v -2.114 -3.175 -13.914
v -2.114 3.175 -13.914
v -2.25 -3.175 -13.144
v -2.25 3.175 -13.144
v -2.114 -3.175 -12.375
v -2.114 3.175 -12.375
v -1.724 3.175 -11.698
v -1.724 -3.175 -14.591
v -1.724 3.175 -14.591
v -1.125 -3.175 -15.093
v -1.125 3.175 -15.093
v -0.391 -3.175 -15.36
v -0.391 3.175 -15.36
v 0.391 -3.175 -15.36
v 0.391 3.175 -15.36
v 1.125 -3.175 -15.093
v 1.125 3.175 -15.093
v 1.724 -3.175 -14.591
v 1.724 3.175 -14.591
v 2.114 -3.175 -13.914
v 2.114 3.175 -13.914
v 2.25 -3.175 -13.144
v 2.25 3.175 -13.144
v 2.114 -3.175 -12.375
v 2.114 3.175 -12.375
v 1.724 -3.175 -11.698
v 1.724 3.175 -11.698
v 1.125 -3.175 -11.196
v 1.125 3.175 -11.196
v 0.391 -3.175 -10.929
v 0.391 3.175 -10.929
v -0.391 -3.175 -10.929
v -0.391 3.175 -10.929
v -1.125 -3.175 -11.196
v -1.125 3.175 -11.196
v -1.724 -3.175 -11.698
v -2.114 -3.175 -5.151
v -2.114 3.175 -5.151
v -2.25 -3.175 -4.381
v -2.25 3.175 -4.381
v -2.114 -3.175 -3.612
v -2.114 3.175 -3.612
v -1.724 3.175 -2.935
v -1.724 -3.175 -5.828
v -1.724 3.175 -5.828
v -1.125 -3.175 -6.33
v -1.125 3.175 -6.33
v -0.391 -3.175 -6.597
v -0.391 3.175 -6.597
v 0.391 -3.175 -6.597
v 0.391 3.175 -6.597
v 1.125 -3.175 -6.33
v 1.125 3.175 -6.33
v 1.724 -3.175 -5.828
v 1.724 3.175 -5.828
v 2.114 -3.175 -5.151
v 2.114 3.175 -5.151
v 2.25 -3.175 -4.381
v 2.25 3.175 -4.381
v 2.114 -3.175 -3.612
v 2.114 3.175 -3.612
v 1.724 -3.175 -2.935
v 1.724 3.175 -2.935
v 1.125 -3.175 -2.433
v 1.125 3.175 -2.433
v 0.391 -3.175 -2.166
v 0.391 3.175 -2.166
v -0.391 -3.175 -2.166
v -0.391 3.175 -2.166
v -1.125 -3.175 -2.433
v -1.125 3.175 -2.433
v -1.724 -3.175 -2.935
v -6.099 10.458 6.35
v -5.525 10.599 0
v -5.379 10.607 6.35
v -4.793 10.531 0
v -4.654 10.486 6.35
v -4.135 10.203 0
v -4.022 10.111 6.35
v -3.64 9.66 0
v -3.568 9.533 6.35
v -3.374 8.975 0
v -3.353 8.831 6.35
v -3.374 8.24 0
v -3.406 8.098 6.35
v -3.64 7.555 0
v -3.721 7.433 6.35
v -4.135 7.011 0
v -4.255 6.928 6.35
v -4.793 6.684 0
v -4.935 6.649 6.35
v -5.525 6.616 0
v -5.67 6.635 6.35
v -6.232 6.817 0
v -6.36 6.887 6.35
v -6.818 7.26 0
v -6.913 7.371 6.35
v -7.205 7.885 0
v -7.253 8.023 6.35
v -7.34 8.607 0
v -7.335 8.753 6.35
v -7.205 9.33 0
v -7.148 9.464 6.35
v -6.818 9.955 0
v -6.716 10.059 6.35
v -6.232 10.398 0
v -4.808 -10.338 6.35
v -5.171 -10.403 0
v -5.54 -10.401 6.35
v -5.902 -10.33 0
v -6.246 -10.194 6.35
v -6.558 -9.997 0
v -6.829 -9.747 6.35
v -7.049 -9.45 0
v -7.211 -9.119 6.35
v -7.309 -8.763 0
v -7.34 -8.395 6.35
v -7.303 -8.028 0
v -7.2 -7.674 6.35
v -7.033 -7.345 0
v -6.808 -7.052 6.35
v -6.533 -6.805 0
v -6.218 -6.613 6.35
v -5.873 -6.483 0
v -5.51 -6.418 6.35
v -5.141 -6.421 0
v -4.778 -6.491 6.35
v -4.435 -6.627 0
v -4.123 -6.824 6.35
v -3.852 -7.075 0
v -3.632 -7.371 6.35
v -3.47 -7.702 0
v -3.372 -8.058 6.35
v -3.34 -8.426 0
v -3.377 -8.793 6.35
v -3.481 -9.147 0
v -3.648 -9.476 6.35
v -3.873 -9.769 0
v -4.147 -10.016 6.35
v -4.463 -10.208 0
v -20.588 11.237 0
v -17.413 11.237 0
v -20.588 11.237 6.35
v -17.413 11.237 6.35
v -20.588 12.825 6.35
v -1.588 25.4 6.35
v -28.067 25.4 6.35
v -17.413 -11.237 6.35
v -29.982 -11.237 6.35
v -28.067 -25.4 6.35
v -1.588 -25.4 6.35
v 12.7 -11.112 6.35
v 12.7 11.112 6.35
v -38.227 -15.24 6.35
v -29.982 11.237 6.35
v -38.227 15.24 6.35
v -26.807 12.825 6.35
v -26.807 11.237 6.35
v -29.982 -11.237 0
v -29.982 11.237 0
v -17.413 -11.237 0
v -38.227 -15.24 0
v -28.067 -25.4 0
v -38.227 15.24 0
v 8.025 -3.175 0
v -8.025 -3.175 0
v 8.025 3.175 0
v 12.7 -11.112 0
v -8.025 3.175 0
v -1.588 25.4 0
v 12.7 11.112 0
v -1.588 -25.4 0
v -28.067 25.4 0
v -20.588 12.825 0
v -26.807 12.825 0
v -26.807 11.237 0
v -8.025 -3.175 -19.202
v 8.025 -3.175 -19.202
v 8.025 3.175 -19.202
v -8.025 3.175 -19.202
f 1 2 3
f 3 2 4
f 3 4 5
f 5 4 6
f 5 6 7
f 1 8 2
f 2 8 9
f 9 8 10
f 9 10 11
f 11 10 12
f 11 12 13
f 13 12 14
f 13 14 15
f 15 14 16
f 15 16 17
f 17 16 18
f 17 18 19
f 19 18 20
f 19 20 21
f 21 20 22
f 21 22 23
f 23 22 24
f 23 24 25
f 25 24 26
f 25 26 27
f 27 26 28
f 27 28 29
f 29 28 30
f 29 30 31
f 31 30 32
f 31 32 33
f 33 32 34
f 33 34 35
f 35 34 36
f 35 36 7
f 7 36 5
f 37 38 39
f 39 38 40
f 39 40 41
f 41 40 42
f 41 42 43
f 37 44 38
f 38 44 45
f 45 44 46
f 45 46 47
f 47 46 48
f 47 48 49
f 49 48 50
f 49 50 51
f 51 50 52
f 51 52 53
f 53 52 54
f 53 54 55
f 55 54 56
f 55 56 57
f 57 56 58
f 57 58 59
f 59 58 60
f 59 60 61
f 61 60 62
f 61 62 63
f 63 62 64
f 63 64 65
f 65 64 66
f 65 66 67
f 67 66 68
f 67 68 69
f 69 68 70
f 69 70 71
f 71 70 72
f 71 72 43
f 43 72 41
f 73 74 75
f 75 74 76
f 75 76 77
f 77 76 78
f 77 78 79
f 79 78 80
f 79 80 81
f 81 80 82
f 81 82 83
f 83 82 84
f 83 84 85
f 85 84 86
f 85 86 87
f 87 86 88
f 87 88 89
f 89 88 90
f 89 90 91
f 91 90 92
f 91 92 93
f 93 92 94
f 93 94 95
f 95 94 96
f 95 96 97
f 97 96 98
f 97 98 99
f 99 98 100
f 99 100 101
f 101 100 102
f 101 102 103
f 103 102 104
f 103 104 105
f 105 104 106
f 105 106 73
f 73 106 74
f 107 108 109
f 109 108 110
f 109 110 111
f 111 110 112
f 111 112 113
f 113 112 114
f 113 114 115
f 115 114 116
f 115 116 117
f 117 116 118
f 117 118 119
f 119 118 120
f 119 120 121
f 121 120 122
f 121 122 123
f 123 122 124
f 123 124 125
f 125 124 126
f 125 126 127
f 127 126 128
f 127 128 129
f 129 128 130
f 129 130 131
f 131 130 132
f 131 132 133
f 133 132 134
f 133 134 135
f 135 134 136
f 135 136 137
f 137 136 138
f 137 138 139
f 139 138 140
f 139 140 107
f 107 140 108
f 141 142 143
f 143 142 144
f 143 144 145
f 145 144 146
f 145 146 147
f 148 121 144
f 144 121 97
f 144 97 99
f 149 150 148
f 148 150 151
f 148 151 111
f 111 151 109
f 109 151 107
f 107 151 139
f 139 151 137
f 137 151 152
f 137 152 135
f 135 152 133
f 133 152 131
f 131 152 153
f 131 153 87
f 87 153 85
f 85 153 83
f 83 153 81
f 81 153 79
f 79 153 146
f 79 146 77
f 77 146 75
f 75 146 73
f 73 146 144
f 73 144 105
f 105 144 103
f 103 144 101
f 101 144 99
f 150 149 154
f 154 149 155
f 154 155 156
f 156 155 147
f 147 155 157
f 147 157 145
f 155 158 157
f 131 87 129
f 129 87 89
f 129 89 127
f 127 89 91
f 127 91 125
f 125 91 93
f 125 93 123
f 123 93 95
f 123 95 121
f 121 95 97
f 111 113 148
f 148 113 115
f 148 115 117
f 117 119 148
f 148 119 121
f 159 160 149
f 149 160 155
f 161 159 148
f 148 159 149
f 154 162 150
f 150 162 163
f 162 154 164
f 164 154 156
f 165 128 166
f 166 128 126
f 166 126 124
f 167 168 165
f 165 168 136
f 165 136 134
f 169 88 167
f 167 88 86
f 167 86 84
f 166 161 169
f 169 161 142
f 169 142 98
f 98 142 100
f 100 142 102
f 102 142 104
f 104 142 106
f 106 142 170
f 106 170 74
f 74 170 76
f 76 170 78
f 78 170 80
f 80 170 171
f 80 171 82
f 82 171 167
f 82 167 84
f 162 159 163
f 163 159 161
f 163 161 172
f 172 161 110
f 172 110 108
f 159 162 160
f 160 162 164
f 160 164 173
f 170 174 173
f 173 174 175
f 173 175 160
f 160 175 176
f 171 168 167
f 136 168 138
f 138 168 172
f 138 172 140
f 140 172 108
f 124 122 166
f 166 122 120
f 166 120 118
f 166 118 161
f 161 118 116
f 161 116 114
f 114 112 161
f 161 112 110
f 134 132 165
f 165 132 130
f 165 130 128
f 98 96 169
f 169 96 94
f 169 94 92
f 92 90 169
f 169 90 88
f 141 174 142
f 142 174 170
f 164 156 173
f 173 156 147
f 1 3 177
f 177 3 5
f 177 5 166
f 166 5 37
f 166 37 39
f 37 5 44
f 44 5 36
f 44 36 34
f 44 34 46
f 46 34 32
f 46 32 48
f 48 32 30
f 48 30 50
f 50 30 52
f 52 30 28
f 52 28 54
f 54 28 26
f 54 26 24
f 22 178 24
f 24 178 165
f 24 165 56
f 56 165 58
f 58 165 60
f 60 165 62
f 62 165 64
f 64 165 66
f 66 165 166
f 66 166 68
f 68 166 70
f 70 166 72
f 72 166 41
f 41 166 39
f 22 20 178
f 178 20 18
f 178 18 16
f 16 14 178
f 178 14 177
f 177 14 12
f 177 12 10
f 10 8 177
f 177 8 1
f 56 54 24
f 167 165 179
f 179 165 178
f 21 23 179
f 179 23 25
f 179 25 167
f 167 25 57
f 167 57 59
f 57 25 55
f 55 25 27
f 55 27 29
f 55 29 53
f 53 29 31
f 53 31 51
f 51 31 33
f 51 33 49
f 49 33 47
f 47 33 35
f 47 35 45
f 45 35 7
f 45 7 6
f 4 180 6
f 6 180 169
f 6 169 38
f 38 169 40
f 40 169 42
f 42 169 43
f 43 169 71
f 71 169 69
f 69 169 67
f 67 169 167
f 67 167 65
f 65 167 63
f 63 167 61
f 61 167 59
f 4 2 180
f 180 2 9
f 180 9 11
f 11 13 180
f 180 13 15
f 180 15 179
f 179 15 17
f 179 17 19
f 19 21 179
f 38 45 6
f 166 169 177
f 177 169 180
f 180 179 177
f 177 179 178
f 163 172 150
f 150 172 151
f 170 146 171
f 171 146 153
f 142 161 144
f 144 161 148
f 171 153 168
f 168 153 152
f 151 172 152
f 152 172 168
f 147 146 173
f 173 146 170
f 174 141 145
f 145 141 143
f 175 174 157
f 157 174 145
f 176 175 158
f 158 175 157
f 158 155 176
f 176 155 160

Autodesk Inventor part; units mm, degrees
ref_plane "YZ Plane" through (0, 0, 0) normal (1, 0, 0) x (0, 1, 0)
ref_plane "XZ Plane" through (0, 0, 0) normal (0, 1, 0) x (-1, 0, 0)
ref_plane "XY Plane" through (0, 0, 0) normal (0, 0, 1) x (1, 0, 0)
sketch "Sketch1" plane through (0, 0, 0) normal (0, 0, 1) x (1, 0, 0)
  line L0 (-38.1, -25.4) -> (38.1, -25.4)
  line L1 (38.1, -25.4) -> (38.1, 25.4)
  line L2 (38.1, 25.4) -> (-38.1, 25.4)
  line L3 (-38.1, 25.4) -> (-38.1, -25.4)
  line L4 (-38.1, -25.4) -> (38.1, 25.4) construction
  line L5 (38.1, -25.4) -> (-38.1, 25.4) construction
  point P0 (0, 0)
  dimension "d0" = 76.2
  dimension "d1" = 50.8
extrude "Extrusion1" add sketch "Sketch1" along normal blind 6.35
sketch "Sketch3" plane through (38.1, -25.4, 0) normal (1, 0, 0) x (0, 0, -1)
  line L0 (0, 0) -> (0, 50.8) projected
  line L1 (0, 50.8) -> (-6.35, 50.8) projected
  line L2 (-6.35, 0) -> (-6.35, 50.8) projected
  line L3 (0, 0) -> (-6.35, 0) projected
  point P0 (0, 25.4)
extrude "Extrusion3" cut sketch "Sketch3" against normal blind 25.4
sketch "Sketch4" plane through (-38.1, -25.4, 0) normal (-1, 0, 0) x (0, 0, 1)
  line L0 (4.925, 17.15) -> (1.425, 17.15)
  line L1 (1.425, 17.15) -> (1.425, 33.65)
  line L2 (1.425, 33.65) -> (4.925, 33.65)
  line L3 (4.925, 33.65) -> (4.925, 17.15)
  line L4 (4.925, 17.15) -> (1.425, 33.65) construction
  line L5 (1.425, 17.15) -> (4.925, 33.65) construction
  point P0 (0, 25.4)
  point P1 (3.175, 25.4)
  dimension "d9" = 3.5
  dimension "d10" = 16.5
extrude "Extrusion4" add sketch "Sketch4" along normal blind 3.302
sketch "Sketch5" plane through (-38.1, -8.25, 4.925) normal (0, 0, 1) x (1, 0, 0)
  line L0 (-3.302, 0) -> (-3.302, 16.5) projected
  line L1 (0, 16.5) -> (0, 0) projected
  line L2 (0, 16.5) -> (-3.302, 16.5) projected
  line L3 (-3.302, 0) -> (-3.302, 16.5) projected
  line L4 (0, 0) -> (-3.302, 0) projected
  line L5 (-3.302, 16.5) -> (-3.175, 16.5)
  line L6 (0, 16.5) -> (-3.302, 16.5) projected
  line L7 (-3.175, 16.5) -> (-3.175, 16.5685)
  line L8 (-3.302, 16.5) -> (-3.302, 0) projected
  line L9 (-3.175, 16.5685) -> (-3.302, 16.5)
  point P0 (38.1, 8.25)
  point P1 (-3.175, 16.5)
  dimension "d13" = 0.127
sketch3d "3D Sketch1"
  line L0 (-41.402, 8.25, 4.925) -> (-41.402, 8.25, 1.425)
  line L1 (-41.402, 8.25, 1.425) -> (-41.402, -8.25, 1.425)
  line L2 (-41.402, -8.25, 1.425) -> (-41.402, -8.25, 4.925)
  line L3 (-41.402, -8.25, 4.925) -> (-41.402, 8.25, 4.925)
sweep "Sweep1" add profiles "Sketch5" path "3D Sketch1" contours L9 L7 L2
chamfer "Chamfer1" distance 14.2875 angle 45 4 edges at (-38.1, -25.4, 3.175) (-38.1, 25.4, 3.175) (12.7, -25.4, 3.175) (12.7, 25.4, 3.175)
sketch "Sketch6" plane through (-41.402, -25.4, 0) normal (-1, 0, 0) x (0, 0, 1)
  line L0 (-26.5368, -66.9991) -> (26.5368, -66.9991)
  line L1 (26.5368, -66.9991) -> (26.5368, 66.9991)
  line L2 (26.5368, 66.9991) -> (-26.5368, 66.9991)
  line L3 (-26.5368, 66.9991) -> (-26.5368, -66.9991)
  line L4 (0, 0) -> (6.35, 0) projected
  line L5 (-26.5368, -66.9991) -> (26.5368, 66.9991) construction
  line L6 (26.5368, -66.9991) -> (-26.5368, 66.9991) construction
  point P0 (0, 25.4)
extrude "Extrusion5" cut sketch "Sketch6" against normal blind 28.575
sketch "Sketch7" plane through (0, 0, 0) normal (0, 0, -1) x (-1, 0, 0)
  line L0 (-8.025, 3.175) -> (-8.025, -3.175)
  line L1 (-8.025, -3.175) -> (8.025, -3.175)
  line L2 (8.025, -3.175) -> (8.025, 3.175)
  line L3 (8.025, 3.175) -> (-8.025, 3.175)
  line L4 (-8.025, 4.675) -> (8.025, -1.675) construction
  line L5 (-8.025, -1.675) -> (8.025, 4.675) construction
  line L6 (0, 3.175) -> (0, -3.175)
  point P0 (0, 0)
  point P1 (0, 0)
  dimension "d21" = 6.35
  dimension "d22" = 16.05
extrude "Extrusion6" add sketch "Sketch7" along normal blind 19.2024
sketch "Sketch9" plane through (0, 0, 6.35) normal (0, 0, 1) x (1, 0, 0)
  line L0 (6.0307, -10.9832) -> (5.9693, 11.0167) projected
  line L1 (-6.0307, 10.9832) -> (6.0307, 10.9832)
  line L2 (6.0307, 10.9832) -> (6.0307, -10.9832)
  line L3 (6.0307, -10.9832) -> (-6.0307, -10.9832)
  line L4 (-6.0307, -10.9832) -> (-6.0307, 10.9832)
  point P0 (0, 0)
sketch "Sketch10" plane through (-12.827, -25.4, 0) normal (-1, 0, 0) x (0, 0, 1)
  line L0 (0, 0) -> (0, 50.8) projected
  line L1 (6.35, 0) -> (0, 0) projected
  line L2 (6.35, 50.8) -> (6.35, 0) projected
  line L3 (0, 50.8) -> (6.35, 50.8) projected
  point P0 (0, 25.4)
extrude "Extrusion7" add sketch "Sketch10" along normal blind 25.4
chamfer "Chamfer2" distance 10.16 angle 45 1 edges at (-38.227, 25.4, 3.175)
chamfer "Chamfer3" distance 10.16 angle 45 1 edges at (-38.227, -25.4, 3.175)
sketch "Sketch11" plane through (0, 0, 6.35) normal (0, 0, 1) x (1, 0, 0)
  line L0 (-29.728, 10.9832) -> (-17.6666, 10.9832)
  line L1 (-17.6666, -10.9832) -> (-29.728, -10.9832)
  line L2 (-29.728, -10.9832) -> (-29.728, 10.9832)
  line L3 (-17.6666, -10.9832) -> (-17.6666, 10.9832)
  line L4 (-30.998, 12.2532) -> (-16.3966, 12.2532)
  line L5 (-16.3966, 12.2532) -> (-16.3966, -12.2532)
  line L6 (-16.3966, -12.2532) -> (-30.998, -12.2532)
  line L7 (-30.998, -12.2532) -> (-30.998, 12.2532)
  line L8 (-17.6666, 10.9832) -> (-18.9366, 10.9832)
  line L9 (-29.728, 10.9832) -> (-28.458, 10.9832)
  line L10 (-18.9366, 10.9832) -> (-28.458, 10.9832)
  line L11 (-28.458, 10.9832) -> (-28.458, 15.1856)
  line L12 (-28.458, 15.1856) -> (-18.9366, 15.1856)
  line L13 (-18.9366, 15.1856) -> (-18.9366, 10.9832)
  point P0 (0, 0)
  dimension "d54" = 1.27
  dimension "d55" = 1.27
  dimension "d56" = 1.27
extrude "Extrusion8" cut sketch "Sketch11" against normal up to surface (6.35 mm away) contours L0 L3 L1 L2
sketch "Sketch12" plane through (0, 0, 6.35) normal (0, 0, 1) x (1, 0, 0)
  arc A0 (-5.2182, -6.4143) -> (-5.5402, -10.4006) centre (-5.418, -8.4043) ccw projected
  arc A1 (-5.5402, -10.4006) -> (-5.2182, -6.4143) centre (-5.3404, -8.4106) ccw projected
  arc A2 (-5.3792, 10.6071) -> (-5.3792, 6.6078) centre (-5.418, 8.6074) ccw projected
  arc A3 (-5.3792, 6.6078) -> (-5.3792, 10.6071) centre (-5.3404, 8.6074) ccw projected
  line L0 (-14.078, 16.1258) -> (3.242, 16.1258) projected
  line L1 (-14.078, 16.1258) -> (-14.078, -15.929) projected
  line L2 (-14.078, -15.929) -> (3.242, -15.929) projected
  line L3 (3.242, 16.1258) -> (3.242, -15.929) projected
  circle A4 centre (-5.3404, -8.4106) radius 2
  circle A5 centre (-5.3404, 8.6074) radius 2
  point P0 (0, 0)
  point P1 (-5.3792, 6.6078)
  point P2 (-5.2182, -6.4143)
  point P3 (-5.5402, -10.4006)
  dimension "d38" = 4
  dimension "d39" = 4
extrude "Extrusion9" cut sketch "Sketch12" against normal up to surface (6.35 mm away) contours A1 A4 | A3 A5
sketch "Sketch13" plane through (-8.025, 3.175, 0) normal (0, 1, 0) x (1, 0, 0)
  line L0 (16.05, 19.2024) -> (0, 19.2024) projected
  circle A0 centre (8.025, 4.3815) radius 2.25
  circle A1 centre (8.025, 13.1445) radius 2.25
  line L1 (16.05, 0) -> (0, 0) projected
  line L2 (16.05, 0) -> (16.05, 19.2024) projected
  line L3 (0, 19.2024) -> (16.05, 19.2024) projected
  line L4 (0, 0) -> (0, 19.2024) projected
  line L5 (8.025, 0) -> (12.4065, 0)
  line L6 (6.4375, 0) -> (20.725, 0) projected
  line L7 (8.025, 0) -> (8.025, 4.3815)
  line L8 (8.025, 0) -> (12.4065, 0) construction
  line L9 (8.025, 0) -> (21.1695, 0)
  line L10 (8.025, 0) -> (8.025, 13.1445)
  line L11 (16.05, 0) -> (0, 0) projected
  line L12 (8.025, 0) -> (21.1695, 0) construction
  dimension "d44" = 4.5
  dimension "d45" = 4.5
  dimension "d48" = 4.3815
  dimension "d49" = 4.3815
  dimension "d50" = 90
  dimension "d51" = 13.1445
  dimension "d52" = 13.1445
  dimension "d53" = 90
extrude "Extrusion10" cut sketch "Sketch13" against normal up to surface (6.35 mm away) contours A1 | A0 L10 L7 | L7 L10 A0
sketch "Sketch14" plane through (0, 0, -19.2024) normal (0, 0, -1) x (-1, 0, 0)
  line L0 (8.025, 3.175) -> (8.025, -3.175) projected
  line L1 (-8.025, -3.175) -> (-8.025, 3.175) projected
  line L2 (8.025, 3.175) -> (-8.025, 3.175)
  line L3 (-8.025, 3.175) -> (-8.025, -3.175)
  line L4 (-8.025, -3.175) -> (8.025, -3.175)
  line L5 (8.025, -3.175) -> (8.025, 3.175)
  point P0 (0, 0)
sketch "Sketch16" plane through (0, 0, 6.35) normal (0, 0, 1) x (1, 0, 0)
  line L0 (-29.728, -10.9832) -> (-29.728, 10.9832) projected
  line L1 (-17.6666, -10.9832) -> (-29.728, -10.9832) projected
  line L2 (-17.6666, 10.9832) -> (-17.6666, -10.9832) projected
  line L3 (-29.728, 10.9832) -> (-17.6666, 10.9832) projected
  line L4 (-29.982, -11.2372) -> (-29.982, 11.2372)
  line L5 (-29.982, 11.2372) -> (-17.4126, 11.2372)
  line L6 (-17.4126, 11.2372) -> (-17.4126, -11.2372)
  line L7 (-17.4126, -11.2372) -> (-29.982, -11.2372)
  point P0 (0, 0)
  dimension "d62" = 0.254
extrude "Extrusion12" cut sketch "Sketch16" against normal up to surface (6.35 mm away)
sketch "Sketch17" plane through (0, 0, 6.35) normal (0, 0, 1) x (1, 0, 0)
  line L0 (-17.4126, 11.2372) -> (-29.982, 11.2372) projected
  line L1 (-29.982, 11.2372) -> (-26.807, 11.2372)
  line L2 (-17.4126, 11.2372) -> (-20.5876, 11.2372)
  line L3 (-26.807, 11.2372) -> (-20.5876, 11.2372)
  line L4 (-20.5876, 11.2372) -> (-20.5876, 12.8247)
  line L5 (-20.5876, 12.8247) -> (-26.807, 12.8247)
  line L6 (-26.807, 12.8247) -> (-26.807, 11.2372)
  point P0 (0, 0)
  dimension "d65" = 3.175
  dimension "d66" = 3.175
  dimension "d67" = 1.5875
extrude "Extrusion13" cut sketch "Sketch17" against normal up to surface (6.35 mm away)
properties part number "Servo Holder Module"
